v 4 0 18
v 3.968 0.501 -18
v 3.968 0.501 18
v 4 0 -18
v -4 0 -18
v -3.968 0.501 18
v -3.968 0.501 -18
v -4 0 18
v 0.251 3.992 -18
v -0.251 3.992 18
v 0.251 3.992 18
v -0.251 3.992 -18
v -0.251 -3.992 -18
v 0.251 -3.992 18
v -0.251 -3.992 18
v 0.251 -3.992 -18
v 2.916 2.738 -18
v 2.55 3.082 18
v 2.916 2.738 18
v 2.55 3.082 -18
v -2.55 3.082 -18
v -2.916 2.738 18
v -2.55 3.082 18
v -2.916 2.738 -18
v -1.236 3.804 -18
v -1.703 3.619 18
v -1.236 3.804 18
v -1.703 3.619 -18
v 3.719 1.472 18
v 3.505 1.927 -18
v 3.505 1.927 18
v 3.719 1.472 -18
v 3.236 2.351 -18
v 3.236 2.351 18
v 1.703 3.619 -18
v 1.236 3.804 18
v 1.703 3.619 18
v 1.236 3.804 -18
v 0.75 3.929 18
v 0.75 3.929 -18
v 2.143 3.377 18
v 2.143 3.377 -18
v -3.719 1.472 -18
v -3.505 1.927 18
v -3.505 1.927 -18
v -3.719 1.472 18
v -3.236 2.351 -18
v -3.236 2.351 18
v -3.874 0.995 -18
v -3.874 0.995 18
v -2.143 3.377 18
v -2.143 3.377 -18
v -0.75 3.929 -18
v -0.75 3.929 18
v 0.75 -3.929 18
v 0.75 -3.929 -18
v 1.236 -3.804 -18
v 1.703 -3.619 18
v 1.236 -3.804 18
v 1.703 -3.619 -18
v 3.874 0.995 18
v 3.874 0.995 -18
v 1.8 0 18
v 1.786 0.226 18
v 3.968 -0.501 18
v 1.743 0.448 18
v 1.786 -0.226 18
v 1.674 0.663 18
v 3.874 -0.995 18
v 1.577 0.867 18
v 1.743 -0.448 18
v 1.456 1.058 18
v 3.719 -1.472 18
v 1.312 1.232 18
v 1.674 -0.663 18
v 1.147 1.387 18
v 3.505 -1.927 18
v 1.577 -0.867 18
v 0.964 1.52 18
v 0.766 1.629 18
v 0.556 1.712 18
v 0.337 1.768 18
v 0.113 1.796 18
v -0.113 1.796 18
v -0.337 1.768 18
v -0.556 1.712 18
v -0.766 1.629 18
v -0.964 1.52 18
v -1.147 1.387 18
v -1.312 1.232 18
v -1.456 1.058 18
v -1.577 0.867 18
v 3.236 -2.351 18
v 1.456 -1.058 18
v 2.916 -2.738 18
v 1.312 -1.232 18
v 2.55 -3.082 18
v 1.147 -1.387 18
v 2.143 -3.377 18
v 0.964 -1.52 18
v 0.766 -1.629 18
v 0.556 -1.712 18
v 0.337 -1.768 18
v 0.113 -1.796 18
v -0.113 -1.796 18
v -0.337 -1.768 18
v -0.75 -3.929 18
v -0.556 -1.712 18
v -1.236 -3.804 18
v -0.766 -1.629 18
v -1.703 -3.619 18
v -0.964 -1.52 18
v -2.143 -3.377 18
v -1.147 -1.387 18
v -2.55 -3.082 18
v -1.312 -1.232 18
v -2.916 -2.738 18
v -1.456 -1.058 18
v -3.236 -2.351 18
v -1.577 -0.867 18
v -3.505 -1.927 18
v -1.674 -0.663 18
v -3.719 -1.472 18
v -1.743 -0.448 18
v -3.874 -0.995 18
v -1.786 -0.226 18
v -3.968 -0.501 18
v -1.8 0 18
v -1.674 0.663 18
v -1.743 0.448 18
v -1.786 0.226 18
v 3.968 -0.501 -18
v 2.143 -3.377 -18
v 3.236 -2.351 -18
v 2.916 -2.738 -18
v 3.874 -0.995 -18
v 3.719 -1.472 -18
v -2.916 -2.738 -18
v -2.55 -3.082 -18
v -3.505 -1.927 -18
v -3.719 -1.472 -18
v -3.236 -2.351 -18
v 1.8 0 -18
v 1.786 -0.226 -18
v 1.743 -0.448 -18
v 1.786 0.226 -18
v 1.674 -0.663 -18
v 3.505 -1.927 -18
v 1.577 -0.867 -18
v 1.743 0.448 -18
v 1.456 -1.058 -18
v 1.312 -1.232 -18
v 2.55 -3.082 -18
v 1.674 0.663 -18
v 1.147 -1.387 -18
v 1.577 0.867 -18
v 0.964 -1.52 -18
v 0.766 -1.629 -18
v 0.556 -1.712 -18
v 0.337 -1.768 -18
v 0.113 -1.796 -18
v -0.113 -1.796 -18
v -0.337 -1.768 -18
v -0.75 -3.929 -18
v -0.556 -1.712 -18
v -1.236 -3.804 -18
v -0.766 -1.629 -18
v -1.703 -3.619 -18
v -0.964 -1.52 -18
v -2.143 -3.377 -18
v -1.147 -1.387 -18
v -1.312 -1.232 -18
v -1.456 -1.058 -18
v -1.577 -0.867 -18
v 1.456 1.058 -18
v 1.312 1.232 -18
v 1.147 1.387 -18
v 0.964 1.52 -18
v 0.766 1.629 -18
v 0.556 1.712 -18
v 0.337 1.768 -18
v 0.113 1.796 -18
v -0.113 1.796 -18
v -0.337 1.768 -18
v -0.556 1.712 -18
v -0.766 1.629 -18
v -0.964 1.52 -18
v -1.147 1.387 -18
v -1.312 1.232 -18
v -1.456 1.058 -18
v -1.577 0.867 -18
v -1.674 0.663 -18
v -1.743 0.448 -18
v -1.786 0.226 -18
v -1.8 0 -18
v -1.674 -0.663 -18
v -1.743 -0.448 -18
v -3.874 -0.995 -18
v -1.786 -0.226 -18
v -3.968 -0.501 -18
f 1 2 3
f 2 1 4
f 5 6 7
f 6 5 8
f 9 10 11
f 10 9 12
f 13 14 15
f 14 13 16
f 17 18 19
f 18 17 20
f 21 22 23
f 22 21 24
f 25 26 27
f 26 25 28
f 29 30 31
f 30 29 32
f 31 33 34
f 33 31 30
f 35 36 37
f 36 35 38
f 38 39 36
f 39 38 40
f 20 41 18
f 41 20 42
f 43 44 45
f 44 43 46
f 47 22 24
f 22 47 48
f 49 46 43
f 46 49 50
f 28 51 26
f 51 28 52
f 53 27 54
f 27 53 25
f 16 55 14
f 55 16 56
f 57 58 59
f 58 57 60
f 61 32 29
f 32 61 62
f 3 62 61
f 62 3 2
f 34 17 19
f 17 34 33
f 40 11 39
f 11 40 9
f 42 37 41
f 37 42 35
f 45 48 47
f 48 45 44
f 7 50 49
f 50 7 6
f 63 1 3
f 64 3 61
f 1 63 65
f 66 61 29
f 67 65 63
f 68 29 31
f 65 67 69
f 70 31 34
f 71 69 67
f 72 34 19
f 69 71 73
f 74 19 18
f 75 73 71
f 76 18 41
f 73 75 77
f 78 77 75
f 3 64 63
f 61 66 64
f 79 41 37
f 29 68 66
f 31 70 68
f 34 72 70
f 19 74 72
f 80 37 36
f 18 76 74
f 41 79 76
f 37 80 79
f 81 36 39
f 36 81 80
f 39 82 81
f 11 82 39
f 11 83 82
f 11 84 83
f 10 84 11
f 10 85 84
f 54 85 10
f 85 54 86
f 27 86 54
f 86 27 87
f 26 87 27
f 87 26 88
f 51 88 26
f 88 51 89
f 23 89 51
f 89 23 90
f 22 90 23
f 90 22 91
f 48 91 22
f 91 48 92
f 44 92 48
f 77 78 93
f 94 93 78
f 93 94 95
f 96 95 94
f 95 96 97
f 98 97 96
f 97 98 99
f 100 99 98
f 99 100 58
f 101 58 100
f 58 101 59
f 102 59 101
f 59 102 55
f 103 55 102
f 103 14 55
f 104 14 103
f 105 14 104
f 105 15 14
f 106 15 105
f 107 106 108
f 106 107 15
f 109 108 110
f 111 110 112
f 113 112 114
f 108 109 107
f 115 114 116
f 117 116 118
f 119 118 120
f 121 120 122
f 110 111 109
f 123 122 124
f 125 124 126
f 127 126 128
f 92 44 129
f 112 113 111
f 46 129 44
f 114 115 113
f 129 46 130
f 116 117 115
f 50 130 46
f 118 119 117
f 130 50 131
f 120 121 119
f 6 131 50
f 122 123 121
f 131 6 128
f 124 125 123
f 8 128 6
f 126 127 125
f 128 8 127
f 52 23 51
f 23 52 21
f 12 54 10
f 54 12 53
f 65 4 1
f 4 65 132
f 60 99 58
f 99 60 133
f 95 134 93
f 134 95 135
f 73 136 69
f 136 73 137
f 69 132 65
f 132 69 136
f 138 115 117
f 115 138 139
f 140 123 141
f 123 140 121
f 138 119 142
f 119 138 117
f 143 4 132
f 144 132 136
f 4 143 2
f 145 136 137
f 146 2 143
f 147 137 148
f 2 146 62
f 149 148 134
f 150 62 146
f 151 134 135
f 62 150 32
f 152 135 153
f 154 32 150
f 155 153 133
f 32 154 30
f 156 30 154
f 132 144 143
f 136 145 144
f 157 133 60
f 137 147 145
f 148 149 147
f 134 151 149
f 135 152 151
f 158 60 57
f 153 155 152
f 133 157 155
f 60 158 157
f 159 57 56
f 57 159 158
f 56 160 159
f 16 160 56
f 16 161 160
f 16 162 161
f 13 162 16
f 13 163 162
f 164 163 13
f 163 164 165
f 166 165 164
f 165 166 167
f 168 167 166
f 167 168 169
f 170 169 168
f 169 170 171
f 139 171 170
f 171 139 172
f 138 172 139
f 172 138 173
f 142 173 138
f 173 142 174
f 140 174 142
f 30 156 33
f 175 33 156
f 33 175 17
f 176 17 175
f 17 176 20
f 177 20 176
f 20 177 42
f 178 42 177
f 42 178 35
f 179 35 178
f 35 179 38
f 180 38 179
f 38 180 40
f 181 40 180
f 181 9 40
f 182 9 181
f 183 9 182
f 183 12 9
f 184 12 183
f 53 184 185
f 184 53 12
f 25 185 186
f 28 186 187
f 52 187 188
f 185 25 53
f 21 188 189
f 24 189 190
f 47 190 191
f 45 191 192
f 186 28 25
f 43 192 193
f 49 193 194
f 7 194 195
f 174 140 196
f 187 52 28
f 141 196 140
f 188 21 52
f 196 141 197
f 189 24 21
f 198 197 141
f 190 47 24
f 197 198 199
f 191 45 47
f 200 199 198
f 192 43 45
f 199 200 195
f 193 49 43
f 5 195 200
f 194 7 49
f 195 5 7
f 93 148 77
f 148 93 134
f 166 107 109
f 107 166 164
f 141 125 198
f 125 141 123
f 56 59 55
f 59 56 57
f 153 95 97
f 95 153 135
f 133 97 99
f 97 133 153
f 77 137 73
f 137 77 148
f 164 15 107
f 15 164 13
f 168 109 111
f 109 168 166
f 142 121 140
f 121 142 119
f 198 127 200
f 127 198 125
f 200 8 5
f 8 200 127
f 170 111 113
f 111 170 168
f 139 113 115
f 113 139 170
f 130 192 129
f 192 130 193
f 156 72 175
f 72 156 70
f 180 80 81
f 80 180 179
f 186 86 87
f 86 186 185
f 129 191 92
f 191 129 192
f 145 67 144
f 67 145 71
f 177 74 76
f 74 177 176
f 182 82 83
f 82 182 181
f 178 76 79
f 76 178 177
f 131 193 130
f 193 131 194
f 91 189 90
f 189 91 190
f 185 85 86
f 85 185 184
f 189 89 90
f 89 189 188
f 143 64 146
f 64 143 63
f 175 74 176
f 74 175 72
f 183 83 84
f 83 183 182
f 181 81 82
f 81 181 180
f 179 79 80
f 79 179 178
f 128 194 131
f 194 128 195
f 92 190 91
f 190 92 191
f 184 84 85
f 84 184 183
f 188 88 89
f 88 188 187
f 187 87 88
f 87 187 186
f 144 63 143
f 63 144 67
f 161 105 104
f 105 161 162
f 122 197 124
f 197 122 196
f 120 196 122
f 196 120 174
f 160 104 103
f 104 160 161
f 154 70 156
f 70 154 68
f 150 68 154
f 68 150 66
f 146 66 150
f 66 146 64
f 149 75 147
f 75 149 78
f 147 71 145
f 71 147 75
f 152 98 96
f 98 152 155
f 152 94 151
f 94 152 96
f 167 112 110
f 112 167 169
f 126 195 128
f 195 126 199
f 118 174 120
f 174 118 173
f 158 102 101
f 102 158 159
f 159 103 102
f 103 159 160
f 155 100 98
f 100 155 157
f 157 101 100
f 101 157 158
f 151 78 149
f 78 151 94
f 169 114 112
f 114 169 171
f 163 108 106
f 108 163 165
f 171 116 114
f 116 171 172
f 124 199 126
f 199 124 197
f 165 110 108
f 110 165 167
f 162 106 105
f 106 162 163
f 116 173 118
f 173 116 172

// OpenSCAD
$fn = 50;


difference() {
	union() {
		translate(v = [0, 0, -18.0000000000]) {
			cylinder(h = 36, r = 4.0000000000);
		}
	}
	union() {
		translate(v = [0, 0, -100.0000000000]) {
			cylinder(h = 200, r = 1.8000000000);
		}
	}
}
